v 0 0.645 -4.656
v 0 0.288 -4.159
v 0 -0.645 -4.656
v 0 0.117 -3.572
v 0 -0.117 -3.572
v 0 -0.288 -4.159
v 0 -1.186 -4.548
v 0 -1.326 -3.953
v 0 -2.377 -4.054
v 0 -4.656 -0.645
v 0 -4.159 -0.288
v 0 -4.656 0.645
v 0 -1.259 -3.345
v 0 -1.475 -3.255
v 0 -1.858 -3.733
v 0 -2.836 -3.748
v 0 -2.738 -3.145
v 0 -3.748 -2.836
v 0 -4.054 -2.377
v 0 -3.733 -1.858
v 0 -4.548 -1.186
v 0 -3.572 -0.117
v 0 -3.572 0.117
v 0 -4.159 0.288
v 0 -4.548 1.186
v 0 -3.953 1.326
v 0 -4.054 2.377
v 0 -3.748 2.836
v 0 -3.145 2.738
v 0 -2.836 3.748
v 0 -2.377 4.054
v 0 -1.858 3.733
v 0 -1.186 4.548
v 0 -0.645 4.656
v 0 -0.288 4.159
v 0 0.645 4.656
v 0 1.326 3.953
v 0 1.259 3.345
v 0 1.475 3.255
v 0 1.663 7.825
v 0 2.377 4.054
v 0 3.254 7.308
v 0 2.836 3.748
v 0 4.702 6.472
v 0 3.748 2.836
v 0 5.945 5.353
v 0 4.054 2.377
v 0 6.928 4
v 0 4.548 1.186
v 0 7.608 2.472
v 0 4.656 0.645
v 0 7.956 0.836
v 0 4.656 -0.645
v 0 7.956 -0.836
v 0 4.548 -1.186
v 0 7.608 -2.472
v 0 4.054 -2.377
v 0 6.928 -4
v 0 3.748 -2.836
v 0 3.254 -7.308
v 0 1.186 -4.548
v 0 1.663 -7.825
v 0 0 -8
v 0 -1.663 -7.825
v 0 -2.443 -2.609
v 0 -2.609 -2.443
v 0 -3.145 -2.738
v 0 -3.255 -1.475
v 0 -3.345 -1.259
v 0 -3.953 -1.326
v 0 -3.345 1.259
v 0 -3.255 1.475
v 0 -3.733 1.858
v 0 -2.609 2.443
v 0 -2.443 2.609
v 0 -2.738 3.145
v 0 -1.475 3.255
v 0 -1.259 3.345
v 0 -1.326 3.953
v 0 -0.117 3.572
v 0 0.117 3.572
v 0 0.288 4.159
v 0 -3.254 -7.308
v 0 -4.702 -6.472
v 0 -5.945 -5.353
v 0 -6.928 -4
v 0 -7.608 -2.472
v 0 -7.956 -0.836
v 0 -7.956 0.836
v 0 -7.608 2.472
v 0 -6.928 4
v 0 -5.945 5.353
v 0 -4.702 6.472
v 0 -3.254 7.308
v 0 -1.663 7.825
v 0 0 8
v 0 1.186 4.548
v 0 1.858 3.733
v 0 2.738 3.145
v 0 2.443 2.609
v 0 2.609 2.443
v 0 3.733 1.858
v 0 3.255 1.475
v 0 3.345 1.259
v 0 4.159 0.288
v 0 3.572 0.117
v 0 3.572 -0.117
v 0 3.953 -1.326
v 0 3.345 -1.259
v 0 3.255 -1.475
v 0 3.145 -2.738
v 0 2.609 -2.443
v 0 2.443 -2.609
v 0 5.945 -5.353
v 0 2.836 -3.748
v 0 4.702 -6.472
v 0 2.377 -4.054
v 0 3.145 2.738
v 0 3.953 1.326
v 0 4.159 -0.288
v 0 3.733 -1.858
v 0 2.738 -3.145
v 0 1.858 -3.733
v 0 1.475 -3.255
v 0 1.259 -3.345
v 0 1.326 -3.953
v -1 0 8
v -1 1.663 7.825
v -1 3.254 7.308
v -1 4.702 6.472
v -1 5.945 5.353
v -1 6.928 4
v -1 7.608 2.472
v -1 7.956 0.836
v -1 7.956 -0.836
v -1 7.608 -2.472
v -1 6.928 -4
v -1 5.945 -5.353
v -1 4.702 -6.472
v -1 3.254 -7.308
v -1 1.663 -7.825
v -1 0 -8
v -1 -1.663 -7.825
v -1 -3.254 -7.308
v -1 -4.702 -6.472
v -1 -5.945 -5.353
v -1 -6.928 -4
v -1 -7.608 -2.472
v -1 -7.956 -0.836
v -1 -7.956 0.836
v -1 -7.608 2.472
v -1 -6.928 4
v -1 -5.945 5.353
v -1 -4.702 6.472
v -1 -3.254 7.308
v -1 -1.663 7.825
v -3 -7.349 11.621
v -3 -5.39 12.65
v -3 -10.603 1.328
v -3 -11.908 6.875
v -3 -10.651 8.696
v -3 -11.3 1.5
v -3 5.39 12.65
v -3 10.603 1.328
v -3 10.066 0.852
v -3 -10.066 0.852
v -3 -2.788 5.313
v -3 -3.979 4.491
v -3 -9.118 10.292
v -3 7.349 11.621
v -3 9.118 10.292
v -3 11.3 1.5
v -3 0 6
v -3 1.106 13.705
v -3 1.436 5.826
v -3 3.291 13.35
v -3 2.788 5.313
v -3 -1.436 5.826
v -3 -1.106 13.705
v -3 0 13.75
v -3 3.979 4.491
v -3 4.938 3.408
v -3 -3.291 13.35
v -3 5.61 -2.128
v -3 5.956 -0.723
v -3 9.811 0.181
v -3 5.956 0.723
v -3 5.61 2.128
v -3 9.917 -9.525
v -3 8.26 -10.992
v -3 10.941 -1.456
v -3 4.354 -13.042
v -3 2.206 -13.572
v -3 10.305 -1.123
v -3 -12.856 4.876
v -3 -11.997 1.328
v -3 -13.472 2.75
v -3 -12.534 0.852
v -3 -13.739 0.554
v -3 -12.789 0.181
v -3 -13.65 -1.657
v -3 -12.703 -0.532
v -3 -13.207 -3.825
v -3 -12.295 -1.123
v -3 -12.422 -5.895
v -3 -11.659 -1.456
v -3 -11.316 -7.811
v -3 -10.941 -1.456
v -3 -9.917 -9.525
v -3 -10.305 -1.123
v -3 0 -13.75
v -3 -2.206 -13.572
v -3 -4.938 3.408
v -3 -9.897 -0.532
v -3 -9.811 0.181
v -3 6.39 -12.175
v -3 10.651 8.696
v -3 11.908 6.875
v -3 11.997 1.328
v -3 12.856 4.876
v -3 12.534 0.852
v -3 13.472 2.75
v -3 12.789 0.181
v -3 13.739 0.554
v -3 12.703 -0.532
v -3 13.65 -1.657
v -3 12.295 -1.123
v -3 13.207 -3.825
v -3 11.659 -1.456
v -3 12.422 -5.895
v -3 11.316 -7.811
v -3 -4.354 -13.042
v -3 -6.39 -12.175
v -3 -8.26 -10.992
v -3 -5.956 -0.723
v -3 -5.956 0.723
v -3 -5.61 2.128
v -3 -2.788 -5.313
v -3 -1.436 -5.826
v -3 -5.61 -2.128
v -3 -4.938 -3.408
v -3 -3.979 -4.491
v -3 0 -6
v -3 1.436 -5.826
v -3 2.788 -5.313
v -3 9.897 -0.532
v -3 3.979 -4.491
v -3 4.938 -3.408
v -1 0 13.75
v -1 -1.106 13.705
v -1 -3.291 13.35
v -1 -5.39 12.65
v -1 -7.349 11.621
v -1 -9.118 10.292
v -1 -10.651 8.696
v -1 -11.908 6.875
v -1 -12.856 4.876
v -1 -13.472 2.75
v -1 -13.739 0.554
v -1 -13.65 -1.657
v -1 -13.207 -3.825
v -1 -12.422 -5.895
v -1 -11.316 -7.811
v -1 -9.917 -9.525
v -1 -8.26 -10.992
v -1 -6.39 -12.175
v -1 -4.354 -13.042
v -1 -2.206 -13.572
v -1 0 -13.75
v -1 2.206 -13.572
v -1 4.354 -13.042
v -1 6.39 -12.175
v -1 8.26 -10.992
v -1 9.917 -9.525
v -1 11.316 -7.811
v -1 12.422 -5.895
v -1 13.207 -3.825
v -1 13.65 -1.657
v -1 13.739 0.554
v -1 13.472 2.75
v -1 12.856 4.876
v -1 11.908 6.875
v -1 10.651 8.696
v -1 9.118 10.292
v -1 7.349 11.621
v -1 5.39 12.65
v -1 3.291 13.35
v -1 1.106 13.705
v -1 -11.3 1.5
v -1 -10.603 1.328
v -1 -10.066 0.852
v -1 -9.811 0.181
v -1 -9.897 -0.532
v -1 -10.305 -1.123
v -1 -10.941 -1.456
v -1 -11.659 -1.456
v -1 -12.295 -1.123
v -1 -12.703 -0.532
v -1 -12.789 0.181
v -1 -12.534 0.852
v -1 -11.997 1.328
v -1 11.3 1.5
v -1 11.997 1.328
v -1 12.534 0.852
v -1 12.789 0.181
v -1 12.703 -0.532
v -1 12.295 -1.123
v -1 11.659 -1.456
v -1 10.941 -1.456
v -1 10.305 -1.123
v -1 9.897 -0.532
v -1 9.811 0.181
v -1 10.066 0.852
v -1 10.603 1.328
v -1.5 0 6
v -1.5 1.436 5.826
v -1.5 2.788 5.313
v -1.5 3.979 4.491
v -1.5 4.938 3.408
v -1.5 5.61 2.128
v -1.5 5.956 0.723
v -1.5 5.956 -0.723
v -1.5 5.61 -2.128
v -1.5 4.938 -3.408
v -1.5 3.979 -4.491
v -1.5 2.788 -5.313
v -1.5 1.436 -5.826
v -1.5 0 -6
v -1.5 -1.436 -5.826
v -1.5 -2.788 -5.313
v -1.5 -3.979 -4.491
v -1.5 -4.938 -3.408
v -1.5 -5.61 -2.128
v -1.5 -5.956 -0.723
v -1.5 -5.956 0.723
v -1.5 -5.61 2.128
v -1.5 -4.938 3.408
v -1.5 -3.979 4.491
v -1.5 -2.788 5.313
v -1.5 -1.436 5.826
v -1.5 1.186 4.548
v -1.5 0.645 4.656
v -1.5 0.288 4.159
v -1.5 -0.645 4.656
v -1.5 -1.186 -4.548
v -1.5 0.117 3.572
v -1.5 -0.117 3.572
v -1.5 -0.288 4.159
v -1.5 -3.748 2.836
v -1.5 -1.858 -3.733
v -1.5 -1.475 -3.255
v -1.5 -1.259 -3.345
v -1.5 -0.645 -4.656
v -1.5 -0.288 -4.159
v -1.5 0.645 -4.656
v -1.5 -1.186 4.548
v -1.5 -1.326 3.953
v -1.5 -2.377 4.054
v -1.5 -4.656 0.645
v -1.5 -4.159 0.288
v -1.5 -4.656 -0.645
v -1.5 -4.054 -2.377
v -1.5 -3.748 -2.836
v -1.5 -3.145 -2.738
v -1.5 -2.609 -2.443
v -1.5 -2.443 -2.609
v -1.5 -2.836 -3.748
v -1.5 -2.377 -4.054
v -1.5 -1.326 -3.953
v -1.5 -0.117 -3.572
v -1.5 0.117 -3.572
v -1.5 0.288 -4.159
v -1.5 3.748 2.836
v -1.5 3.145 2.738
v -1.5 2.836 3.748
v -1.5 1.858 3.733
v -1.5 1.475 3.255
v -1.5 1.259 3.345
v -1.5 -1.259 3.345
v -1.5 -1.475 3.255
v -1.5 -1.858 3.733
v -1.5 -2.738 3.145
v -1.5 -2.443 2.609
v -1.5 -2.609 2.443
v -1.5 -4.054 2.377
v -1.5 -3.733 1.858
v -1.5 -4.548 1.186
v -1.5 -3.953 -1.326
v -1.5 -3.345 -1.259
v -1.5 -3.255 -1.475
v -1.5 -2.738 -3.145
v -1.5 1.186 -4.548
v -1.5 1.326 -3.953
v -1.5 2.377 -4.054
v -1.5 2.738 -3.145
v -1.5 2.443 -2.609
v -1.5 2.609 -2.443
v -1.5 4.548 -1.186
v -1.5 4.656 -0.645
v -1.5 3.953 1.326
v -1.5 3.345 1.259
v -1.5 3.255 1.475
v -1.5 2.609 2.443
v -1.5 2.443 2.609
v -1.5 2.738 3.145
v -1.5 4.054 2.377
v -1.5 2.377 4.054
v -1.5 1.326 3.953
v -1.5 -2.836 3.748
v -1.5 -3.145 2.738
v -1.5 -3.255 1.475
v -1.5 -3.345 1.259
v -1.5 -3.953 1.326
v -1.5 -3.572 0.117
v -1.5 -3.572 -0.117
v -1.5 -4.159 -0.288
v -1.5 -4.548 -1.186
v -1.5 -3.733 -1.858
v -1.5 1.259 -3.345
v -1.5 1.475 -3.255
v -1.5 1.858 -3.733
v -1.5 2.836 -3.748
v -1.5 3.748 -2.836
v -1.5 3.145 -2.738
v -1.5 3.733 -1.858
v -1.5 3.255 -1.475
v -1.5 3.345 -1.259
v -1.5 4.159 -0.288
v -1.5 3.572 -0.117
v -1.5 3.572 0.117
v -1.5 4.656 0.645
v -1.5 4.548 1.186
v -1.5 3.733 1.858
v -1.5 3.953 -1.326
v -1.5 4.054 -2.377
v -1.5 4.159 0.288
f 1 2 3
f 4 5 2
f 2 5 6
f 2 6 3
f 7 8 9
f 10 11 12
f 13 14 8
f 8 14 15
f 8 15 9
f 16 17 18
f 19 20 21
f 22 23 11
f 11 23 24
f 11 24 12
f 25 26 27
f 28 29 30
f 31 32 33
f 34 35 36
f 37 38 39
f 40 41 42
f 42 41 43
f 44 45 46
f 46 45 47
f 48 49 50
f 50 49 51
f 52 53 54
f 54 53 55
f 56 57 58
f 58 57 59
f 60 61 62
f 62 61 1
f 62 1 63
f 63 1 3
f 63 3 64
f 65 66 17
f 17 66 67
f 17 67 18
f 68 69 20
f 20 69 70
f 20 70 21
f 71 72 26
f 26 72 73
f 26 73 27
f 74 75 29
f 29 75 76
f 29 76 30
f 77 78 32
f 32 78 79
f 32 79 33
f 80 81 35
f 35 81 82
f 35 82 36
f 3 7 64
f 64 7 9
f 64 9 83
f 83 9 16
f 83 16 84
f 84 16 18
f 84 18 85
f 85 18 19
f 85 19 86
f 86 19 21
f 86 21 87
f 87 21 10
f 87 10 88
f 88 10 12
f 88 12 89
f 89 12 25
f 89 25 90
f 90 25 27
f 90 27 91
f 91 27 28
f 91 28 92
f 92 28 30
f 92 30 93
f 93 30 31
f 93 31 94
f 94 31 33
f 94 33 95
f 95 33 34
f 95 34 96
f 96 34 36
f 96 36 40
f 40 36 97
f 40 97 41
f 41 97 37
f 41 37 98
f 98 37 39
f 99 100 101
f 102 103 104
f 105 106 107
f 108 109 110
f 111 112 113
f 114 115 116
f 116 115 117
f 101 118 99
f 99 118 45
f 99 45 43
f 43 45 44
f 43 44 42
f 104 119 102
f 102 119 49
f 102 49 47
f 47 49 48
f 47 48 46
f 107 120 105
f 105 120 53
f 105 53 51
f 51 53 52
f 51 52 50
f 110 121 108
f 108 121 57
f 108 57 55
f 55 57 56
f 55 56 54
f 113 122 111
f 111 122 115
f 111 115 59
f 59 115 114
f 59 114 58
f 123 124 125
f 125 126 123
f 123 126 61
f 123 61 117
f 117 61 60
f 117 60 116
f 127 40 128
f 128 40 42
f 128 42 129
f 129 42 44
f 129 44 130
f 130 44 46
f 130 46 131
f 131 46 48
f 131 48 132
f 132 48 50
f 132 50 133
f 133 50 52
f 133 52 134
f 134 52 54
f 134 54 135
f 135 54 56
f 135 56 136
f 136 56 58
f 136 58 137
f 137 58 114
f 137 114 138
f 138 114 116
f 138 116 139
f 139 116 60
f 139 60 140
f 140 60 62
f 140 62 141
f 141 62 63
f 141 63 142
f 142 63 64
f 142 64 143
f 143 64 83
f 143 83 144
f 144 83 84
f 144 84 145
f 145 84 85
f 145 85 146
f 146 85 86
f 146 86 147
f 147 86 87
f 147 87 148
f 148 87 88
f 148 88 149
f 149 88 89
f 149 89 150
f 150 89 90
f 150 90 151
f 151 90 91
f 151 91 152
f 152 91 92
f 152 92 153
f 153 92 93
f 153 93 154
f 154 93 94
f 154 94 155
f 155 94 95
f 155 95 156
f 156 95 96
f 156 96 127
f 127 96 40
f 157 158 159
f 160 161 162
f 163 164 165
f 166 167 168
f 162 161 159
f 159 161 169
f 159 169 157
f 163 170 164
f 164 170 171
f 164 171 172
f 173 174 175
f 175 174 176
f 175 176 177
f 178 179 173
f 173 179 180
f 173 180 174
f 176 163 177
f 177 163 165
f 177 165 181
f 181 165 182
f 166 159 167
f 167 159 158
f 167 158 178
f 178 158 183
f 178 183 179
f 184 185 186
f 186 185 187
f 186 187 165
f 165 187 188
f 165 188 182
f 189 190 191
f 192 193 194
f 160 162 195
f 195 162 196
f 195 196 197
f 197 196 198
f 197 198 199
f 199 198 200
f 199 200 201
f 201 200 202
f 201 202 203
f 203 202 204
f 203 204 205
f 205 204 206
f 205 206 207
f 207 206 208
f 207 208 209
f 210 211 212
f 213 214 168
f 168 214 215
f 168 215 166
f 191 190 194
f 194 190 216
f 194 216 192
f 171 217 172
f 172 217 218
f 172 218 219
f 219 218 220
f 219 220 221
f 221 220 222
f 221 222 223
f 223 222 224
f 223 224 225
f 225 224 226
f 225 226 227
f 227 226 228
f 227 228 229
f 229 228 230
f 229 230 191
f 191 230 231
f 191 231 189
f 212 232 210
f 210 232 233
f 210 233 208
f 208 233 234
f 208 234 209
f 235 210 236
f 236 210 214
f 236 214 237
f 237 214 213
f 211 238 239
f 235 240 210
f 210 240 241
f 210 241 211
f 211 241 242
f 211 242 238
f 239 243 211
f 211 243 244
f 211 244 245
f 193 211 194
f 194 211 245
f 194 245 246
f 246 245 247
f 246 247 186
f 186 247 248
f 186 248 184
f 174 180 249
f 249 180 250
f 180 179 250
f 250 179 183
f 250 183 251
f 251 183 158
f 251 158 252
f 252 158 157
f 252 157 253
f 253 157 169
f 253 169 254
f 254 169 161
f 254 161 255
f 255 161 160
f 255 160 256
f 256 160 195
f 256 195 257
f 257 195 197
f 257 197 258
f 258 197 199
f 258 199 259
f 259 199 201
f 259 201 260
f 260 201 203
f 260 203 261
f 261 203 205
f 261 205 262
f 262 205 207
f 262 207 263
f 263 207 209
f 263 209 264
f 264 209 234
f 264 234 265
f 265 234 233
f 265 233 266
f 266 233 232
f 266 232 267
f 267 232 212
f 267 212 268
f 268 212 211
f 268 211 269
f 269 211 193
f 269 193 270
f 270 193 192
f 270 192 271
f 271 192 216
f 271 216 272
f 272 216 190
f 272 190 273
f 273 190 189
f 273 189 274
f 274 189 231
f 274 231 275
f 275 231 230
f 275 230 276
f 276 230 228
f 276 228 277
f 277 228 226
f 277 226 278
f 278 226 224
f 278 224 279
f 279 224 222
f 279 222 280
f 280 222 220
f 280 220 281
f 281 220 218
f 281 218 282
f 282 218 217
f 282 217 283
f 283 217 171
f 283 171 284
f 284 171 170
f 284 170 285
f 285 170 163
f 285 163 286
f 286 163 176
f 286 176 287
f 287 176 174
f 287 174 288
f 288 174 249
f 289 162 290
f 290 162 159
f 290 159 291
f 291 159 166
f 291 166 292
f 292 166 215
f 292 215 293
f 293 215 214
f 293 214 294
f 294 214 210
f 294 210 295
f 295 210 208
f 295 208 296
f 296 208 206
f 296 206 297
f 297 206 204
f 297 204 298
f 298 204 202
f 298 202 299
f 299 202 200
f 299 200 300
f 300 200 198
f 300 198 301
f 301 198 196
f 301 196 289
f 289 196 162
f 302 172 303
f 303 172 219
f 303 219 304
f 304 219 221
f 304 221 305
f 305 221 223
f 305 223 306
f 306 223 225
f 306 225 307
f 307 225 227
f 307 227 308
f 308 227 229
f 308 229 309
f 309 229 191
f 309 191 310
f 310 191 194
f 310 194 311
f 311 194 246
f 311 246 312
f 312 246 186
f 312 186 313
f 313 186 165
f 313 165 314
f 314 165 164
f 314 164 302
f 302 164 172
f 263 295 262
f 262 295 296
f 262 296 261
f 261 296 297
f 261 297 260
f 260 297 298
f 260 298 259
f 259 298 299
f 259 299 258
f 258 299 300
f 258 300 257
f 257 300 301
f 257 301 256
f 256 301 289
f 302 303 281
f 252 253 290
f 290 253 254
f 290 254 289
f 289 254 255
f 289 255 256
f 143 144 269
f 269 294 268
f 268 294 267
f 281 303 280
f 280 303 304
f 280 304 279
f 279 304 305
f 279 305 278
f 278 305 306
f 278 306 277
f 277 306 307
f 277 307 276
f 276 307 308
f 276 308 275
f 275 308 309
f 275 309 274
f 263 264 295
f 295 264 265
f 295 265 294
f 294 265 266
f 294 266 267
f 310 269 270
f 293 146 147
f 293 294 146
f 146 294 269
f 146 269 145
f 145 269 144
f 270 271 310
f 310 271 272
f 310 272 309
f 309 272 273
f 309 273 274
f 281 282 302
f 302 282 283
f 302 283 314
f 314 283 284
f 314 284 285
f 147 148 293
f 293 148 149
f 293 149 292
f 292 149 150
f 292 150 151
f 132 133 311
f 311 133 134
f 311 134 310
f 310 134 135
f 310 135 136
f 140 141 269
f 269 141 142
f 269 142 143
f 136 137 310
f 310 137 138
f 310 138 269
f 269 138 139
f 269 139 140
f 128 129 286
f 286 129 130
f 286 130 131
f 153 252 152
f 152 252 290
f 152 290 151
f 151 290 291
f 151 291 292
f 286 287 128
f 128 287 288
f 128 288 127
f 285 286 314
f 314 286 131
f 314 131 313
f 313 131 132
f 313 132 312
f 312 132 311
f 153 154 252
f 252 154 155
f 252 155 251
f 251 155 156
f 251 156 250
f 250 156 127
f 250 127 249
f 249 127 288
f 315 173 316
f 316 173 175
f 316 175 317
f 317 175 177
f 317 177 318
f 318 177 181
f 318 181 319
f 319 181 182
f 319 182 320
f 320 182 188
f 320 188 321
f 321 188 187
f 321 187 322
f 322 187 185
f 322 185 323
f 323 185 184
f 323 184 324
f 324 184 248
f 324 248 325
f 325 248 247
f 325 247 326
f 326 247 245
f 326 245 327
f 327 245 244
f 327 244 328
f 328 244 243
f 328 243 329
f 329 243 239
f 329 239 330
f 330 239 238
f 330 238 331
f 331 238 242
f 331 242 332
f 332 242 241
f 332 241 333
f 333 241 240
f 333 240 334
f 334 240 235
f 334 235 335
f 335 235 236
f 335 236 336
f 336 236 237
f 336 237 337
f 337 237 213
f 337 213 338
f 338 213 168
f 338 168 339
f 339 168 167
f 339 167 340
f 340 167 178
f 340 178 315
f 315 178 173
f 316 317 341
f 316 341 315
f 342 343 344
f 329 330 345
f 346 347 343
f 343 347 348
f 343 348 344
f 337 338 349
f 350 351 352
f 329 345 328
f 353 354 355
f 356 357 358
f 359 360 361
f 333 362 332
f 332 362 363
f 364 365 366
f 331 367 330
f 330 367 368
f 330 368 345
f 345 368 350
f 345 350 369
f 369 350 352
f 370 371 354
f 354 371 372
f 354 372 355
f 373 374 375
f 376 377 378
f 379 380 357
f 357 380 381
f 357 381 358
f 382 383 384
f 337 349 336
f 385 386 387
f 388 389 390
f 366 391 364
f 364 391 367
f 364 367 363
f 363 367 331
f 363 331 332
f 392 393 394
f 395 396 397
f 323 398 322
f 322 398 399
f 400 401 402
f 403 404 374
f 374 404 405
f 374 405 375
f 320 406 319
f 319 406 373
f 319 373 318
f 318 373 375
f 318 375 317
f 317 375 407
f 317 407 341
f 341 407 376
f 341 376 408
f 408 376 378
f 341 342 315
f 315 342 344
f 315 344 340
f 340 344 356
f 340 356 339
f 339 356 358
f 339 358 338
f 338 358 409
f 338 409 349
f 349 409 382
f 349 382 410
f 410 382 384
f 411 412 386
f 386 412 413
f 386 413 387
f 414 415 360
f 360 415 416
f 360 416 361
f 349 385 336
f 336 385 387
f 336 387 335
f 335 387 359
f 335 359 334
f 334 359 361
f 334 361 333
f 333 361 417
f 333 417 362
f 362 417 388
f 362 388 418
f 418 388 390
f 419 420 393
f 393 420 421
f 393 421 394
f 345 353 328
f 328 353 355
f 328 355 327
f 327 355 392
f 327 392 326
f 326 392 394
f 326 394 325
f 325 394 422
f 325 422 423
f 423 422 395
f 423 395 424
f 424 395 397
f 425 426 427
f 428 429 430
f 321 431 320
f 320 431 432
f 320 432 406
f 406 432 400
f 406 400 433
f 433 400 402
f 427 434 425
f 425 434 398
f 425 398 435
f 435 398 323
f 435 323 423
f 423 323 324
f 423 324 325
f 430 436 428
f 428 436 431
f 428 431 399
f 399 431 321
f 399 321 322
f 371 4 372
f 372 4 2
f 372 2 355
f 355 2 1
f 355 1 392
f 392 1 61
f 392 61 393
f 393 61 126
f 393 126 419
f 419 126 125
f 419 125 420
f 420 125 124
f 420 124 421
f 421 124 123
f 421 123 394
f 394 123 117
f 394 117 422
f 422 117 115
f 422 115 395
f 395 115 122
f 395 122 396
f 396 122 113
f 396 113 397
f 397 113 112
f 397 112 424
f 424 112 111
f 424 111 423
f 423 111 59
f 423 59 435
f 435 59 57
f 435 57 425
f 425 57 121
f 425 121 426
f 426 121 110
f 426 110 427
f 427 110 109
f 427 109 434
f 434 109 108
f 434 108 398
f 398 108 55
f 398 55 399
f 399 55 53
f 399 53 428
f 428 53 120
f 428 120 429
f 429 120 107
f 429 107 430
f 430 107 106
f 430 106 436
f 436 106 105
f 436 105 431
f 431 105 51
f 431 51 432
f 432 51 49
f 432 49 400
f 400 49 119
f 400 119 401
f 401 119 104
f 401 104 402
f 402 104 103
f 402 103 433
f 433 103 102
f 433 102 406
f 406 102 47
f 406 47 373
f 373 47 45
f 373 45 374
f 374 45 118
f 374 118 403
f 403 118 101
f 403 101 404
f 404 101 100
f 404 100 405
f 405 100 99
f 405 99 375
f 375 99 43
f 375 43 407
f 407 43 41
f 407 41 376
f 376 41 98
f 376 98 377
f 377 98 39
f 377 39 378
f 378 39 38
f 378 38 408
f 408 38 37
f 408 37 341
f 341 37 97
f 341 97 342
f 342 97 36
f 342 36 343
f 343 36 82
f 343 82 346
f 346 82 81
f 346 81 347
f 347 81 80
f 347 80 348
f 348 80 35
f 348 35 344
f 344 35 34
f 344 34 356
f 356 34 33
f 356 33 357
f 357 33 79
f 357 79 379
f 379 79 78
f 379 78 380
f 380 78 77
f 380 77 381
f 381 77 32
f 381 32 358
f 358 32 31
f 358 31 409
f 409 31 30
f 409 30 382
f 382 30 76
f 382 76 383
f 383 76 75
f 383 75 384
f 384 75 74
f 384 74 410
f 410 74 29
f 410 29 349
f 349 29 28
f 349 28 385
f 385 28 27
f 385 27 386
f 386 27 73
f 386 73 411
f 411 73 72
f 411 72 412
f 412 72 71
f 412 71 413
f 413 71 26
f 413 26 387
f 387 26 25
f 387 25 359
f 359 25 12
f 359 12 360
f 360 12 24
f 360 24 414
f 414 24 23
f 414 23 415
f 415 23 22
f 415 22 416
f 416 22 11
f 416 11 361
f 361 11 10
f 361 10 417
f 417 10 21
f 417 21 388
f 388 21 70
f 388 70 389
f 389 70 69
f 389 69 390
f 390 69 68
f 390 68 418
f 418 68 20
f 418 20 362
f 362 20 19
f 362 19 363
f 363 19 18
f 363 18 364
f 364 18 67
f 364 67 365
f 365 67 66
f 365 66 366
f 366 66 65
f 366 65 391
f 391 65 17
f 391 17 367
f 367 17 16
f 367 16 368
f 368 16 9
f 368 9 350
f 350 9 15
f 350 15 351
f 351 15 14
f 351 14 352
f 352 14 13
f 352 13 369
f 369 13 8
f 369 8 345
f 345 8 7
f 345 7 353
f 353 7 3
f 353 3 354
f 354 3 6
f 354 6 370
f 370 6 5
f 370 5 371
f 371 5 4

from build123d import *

# Parameters (mm, degrees)
BASPROSKE_W             = 7.5
BASPROSKE_H             = 4.5
TOOTHCUT_DEPTH          = 10.836157786
TEETHCUTS_COUNT         = 16
TEETHCUTS_ANGLE         = 337.5
BORSKE_R                = 2.5
BORE_DEPTH              = 50.0000508
ESQUISSE4_R             = 6
BOSS_EXTRU_3_DEPTH      = 1
ESQUISSE5_R             = 6.027848577
ESQUISSE5_R_2           = 2.85
BOSS_EXTRU_4_DEPTH      = 1
ESQUISSE7_R             = 3.00711341
BOSS_EXTRU_6_DEPTH      = 8.5
ESQUISSE9_R             = 13.75
ESQUISSE9_R_2           = 5.5
BOSS_EXTRU_8_DEPTH      = 2
ESQUISSE10_R            = 1.5
ENL_V_MAT_EXTRU_3_DEPTH = 23.591480695
ESQUISSE11_R            = 3
ENL_V_MAT_EXTRU_4_DEPTH = 4
BOSS_EXTRU_9_START      = 4
ESQUISSE12_R            = 3
BOSS_EXTRU_9_DEPTH      = 4
ESQUISSE13_R            = 5.5
BOSS_EXTRU_10_DEPTH     = 2
ESQUISSE16_R            = 8
BOSS_EXTRU_11_DEPTH     = 1
ESQUISSE14_R            = 6
ENL_V_MAT_EXTRU_5_DEPTH = 1.5
ESQUISSE15_R            = 3.25
ENL_V_MAT_EXTRU_6_DEPTH = 4.5
ENL_V_START             = -4
ESQUISSE17_R            = 6.027848577
ENL_V_MAT_EXTRU_7_DEPTH = 4
ENL_V_MAT_EXTRU_8_DEPTH = 6


with BuildPart() as part:
    # BasProSke → Base-Revolve (revolve)
    with BuildSketch(Plane(origin=(0, 0, 0), x_dir=(1, 0, 0), z_dir=(0, 1, 0)), mode=Mode.PRIVATE) as base_revolve_sk:
        with Locations((3.75, 2.25)):
            Rectangle(BASPROSKE_W, BASPROSKE_H)
    revolve(base_revolve_sk.sketch.rotate(Axis((-10, 0, 0), (1, 0, 0)), 180), axis=Axis((-10, 0, 0), (1, 0, 0)))

    # TooCutSke → ToothCut (cut, through all)
    with BuildSketch(Plane(origin=(0, 0, 0), x_dir=(0, 0, -1), z_dir=(1, 0, 0))):
        with BuildLine():
            ThreePointArc((0.306025637, 3.360092902), (0, 3.374), (-0.306025637, 3.360092902))
            ThreePointArc((-0.306025637, 3.360092902), (-0.415941512, 3.953968919), (-0.738171669, 4.464789776))
            ThreePointArc((-0.738171669, 4.464789776), (0, 4.5254), (0.738171669, 4.464789776))
            ThreePointArc((0.738171669, 4.464789776), (0.415941512, 3.953968919), (0.306025637, 3.360092902))
        make_face()
    toothcut = extrude(amount=TOOTHCUT_DEPTH, mode=Mode.SUBTRACT)

    # TeethCuts: ToothCut ×16 about axis
    teethcuts_axis = Axis((-10, 0, 0), (1, 0, 0))
    for i in range(1, TEETHCUTS_COUNT):
        add(toothcut.rotate(teethcuts_axis, i * TEETHCUTS_ANGLE / (TEETHCUTS_COUNT - 1)), mode=Mode.SUBTRACT)

    # BorSke → Bore (cut, symmetric)
    with BuildSketch(Plane(origin=(0, 0, 0), x_dir=(0, 0, -1), z_dir=(1, 0, 0))):
        with Locations(Location((0, 0, 0), (0, 0, 180))):
            Circle(BORSKE_R)
    extrude(amount=BORE_DEPTH, both=True, mode=Mode.SUBTRACT)

    # Esquisse4 → Boss.-Extru.3 (add)
    with BuildSketch(Plane.ZY):
        Circle(ESQUISSE4_R)
    extrude(amount=BOSS_EXTRU_3_DEPTH)

    # Esquisse5 → Boss.-Extru.4 (add)
    with BuildSketch(Plane(origin=(7.5, 0, 0), x_dir=(0, 0, -1), z_dir=(1, 0, 0))):
        Circle(ESQUISSE5_R)
        Circle(ESQUISSE5_R_2, mode=Mode.SUBTRACT)
    extrude(amount=BOSS_EXTRU_4_DEPTH)

    # Esquisse7 → Boss.-Extru.6 (add)
    with BuildSketch(Plane(origin=(0, 0, 0), x_dir=(0, 0, -1), z_dir=(1, 0, 0))):
        Circle(ESQUISSE7_R)
    extrude(amount=BOSS_EXTRU_6_DEPTH)

    # Esquisse9 → Boss.-Extru.8 (add)
    with BuildSketch(Plane.ZY.offset(1)):
        Circle(ESQUISSE9_R)
        Circle(ESQUISSE9_R_2, mode=Mode.SUBTRACT)
    extrude(amount=BOSS_EXTRU_8_DEPTH)

    # Esquisse10 → Enlèv. mat.-Extru.3 (cut, through all)
    with BuildSketch(Plane.ZY.offset(3)):
        with Locations((0, 11.3)):
            Circle(ESQUISSE10_R)
        with Locations((0, -11.3)):
            Circle(ESQUISSE10_R)
    extrude(amount=-ENL_V_MAT_EXTRU_3_DEPTH, mode=Mode.SUBTRACT)

    # Esquisse11 → Enlèv. mat.-Extru.4 (cut)
    with BuildSketch(Plane.ZY.offset(1)):
        Circle(ESQUISSE11_R)
    extrude(amount=-ENL_V_MAT_EXTRU_4_DEPTH, mode=Mode.SUBTRACT)

    # Esquisse12 → Boss.-Extru.9 (add)
    with BuildSketch(Plane.ZY.offset(-3).offset(BOSS_EXTRU_9_START)):
        Circle(ESQUISSE12_R)
    extrude(amount=-BOSS_EXTRU_9_DEPTH)

    # Esquisse13 → Boss.-Extru.10 (add)
    with BuildSketch(Plane.ZY.offset(1)):
        Circle(ESQUISSE13_R)
    extrude(amount=BOSS_EXTRU_10_DEPTH)

    # Esquisse16 → Boss.-Extru.11 (add)
    with BuildSketch(Plane(origin=(-1, 0, 0), x_dir=(0, 0, -1), z_dir=(1, 0, 0))):
        with Locations(Location((0, 0, 0), (0, 0, 180))):
            Circle(ESQUISSE16_R)
    extrude(amount=BOSS_EXTRU_11_DEPTH)

    # Esquisse14 → Enlèv. mat.-Extru.5 (cut)
    with BuildSketch(Plane.ZY.offset(3)):
        Circle(ESQUISSE14_R)
    extrude(amount=-ENL_V_MAT_EXTRU_5_DEPTH, mode=Mode.SUBTRACT)

    # Esquisse15 → Enlèv. mat.-Extru.6 (cut)
    with BuildSketch(Plane.ZY.offset(1.5)):
        Circle(ESQUISSE15_R)
    extrude(amount=-ENL_V_MAT_EXTRU_6_DEPTH, mode=Mode.SUBTRACT)

    # Esquisse17 → Enlèv. mat.-Extru.7 (cut)
    with BuildSketch(Plane(origin=(8.5, 0, 0), x_dir=(0, 0, -1), z_dir=(1, 0, 0)).offset(ENL_V_START)):
        Circle(ESQUISSE17_R)
    extrude(amount=ENL_V_MAT_EXTRU_7_DEPTH, mode=Mode.SUBTRACT)

    # Esquisse18 → Enlèv. mat.-Extru.8 (cut)
    with BuildSketch(Plane(origin=(4.5, 0, 0), x_dir=(0, 0, -1), z_dir=(1, 0, 0))):
        with BuildLine():
            ThreePointArc((3.572076358, 0.117245432), (4.159283684, 0.287738258), (4.655535919, 0.644969227))
            ThreePointArc((4.655535919, 0.644969227), (4.609690818, 0.916924513), (4.547973386, 1.185722597))
            ThreePointArc((4.547973386, 1.185722597), (3.952789729, 1.325853469), (3.34503612, 1.258653786))
            ThreePointArc((3.34503612, 1.258653786), (3.301945449, 1.367710587), (3.255300351, 1.475295097))
            ThreePointArc((3.255300351, 1.475295097), (3.732564401, 1.857524443), (4.054335311, 2.377470333))
            ThreePointArc((4.054335311, 2.377470333), (3.907907178, 2.611180095), (3.748023133, 2.835898905))
            ThreePointArc((3.748023133, 2.835898905), (3.144519371, 2.737596024), (2.608744456, 2.442934375))
            ThreePointArc((2.608744456, 2.442934375), (2.527199636, 2.527199636), (2.442934375, 2.608744456))
            ThreePointArc((2.442934375, 2.608744456), (2.737596024, 3.144519371), (2.835898905, 3.748023133))
            ThreePointArc((2.835898905, 3.748023133), (2.611180095, 3.907907178), (2.377470333, 4.054335311))
            ThreePointArc((2.377470333, 4.054335311), (1.857524443, 3.732564401), (1.475295097, 3.255300351))
            ThreePointArc((1.475295097, 3.255300351), (1.367710587, 3.301945449), (1.258653786, 3.34503612))
            ThreePointArc((1.258653786, 3.34503612), (1.325853469, 3.952789729), (1.185722597, 4.547973386))
            ThreePointArc((1.185722597, 4.547973386), (0.916924513, 4.609690818), (0.644969227, 4.655535919))
            ThreePointArc((0.644969227, 4.655535919), (0.287738258, 4.159283684), (0.117245432, 3.572076358))
            ThreePointArc((0.117245432, 3.572076358), (0, 3.574), (-0.117245432, 3.572076358))
            ThreePointArc((-0.117245432, 3.572076358), (-0.287738258, 4.159283684), (-0.644969227, 4.655535919))
            ThreePointArc((-0.644969227, 4.655535919), (-0.916924513, 4.609690818), (-1.185722597, 4.547973386))
            ThreePointArc((-1.185722597, 4.547973386), (-1.325853469, 3.952789729), (-1.258653786, 3.34503612))
            ThreePointArc((-1.258653786, 3.34503612), (-1.367710587, 3.301945449), (-1.475295097, 3.255300351))
            ThreePointArc((-1.475295097, 3.255300351), (-1.857524443, 3.732564401), (-2.377470333, 4.054335311))
            ThreePointArc((-2.377470333, 4.054335311), (-2.611180095, 3.907907178), (-2.835898905, 3.748023133))
            ThreePointArc((-2.835898905, 3.748023133), (-2.737596024, 3.144519371), (-2.442934375, 2.608744456))
            ThreePointArc((-2.442934375, 2.608744456), (-2.527199636, 2.527199636), (-2.608744456, 2.442934375))
            ThreePointArc((-2.608744456, 2.442934375), (-3.144519371, 2.737596024), (-3.748023133, 2.835898905))
            ThreePointArc((-3.748023133, 2.835898905), (-3.907907178, 2.611180095), (-4.054335311, 2.377470333))
            ThreePointArc((-4.054335311, 2.377470333), (-3.732564401, 1.857524443), (-3.255300351, 1.475295097))
            ThreePointArc((-3.255300351, 1.475295097), (-3.301945449, 1.367710587), (-3.34503612, 1.258653786))
            ThreePointArc((-3.34503612, 1.258653786), (-3.952789729, 1.325853469), (-4.547973386, 1.185722597))
            ThreePointArc((-4.547973386, 1.185722597), (-4.609690818, 0.916924513), (-4.655535919, 0.644969227))
            ThreePointArc((-4.655535919, 0.644969227), (-4.159283684, 0.287738258), (-3.572076358, 0.117245432))
            ThreePointArc((-3.572076358, 0.117245432), (-3.574, 0), (-3.572076358, -0.117245432))
            ThreePointArc((-3.572076358, -0.117245432), (-4.159283684, -0.287738258), (-4.655535919, -0.644969227))
            ThreePointArc((-4.655535919, -0.644969227), (-4.609690818, -0.916924513), (-4.547973386, -1.185722597))
            ThreePointArc((-4.547973386, -1.185722597), (-3.952789729, -1.325853469), (-3.34503612, -1.258653786))
            ThreePointArc((-3.34503612, -1.258653786), (-3.301945449, -1.367710587), (-3.255300351, -1.475295097))
            ThreePointArc((-3.255300351, -1.475295097), (-3.732564401, -1.857524443), (-4.054335311, -2.377470333))
            ThreePointArc((-4.054335311, -2.377470333), (-3.907907178, -2.611180095), (-3.748023133, -2.835898905))
            ThreePointArc((-3.748023133, -2.835898905), (-3.144519371, -2.737596024), (-2.608744456, -2.442934375))
            ThreePointArc((-2.608744456, -2.442934375), (-2.527199636, -2.527199636), (-2.442934375, -2.608744456))
            ThreePointArc((-2.442934375, -2.608744456), (-2.737596024, -3.144519371), (-2.835898905, -3.748023133))
            ThreePointArc((-2.835898905, -3.748023133), (-2.611180095, -3.907907178), (-2.377470333, -4.054335311))
            ThreePointArc((-2.377470333, -4.054335311), (-1.857524443, -3.732564401), (-1.475295097, -3.255300351))
            ThreePointArc((-1.475295097, -3.255300351), (-1.367710587, -3.301945449), (-1.258653786, -3.34503612))
            ThreePointArc((-1.258653786, -3.34503612), (-1.325853469, -3.952789729), (-1.185722597, -4.547973386))
            ThreePointArc((-1.185722597, -4.547973386), (-0.916924513, -4.609690818), (-0.644969227, -4.655535919))
            ThreePointArc((-0.644969227, -4.655535919), (-0.287738258, -4.159283684), (-0.117245432, -3.572076358))
            ThreePointArc((-0.117245432, -3.572076358), (0, -3.574), (0.117245432, -3.572076358))
            ThreePointArc((0.117245432, -3.572076358), (0.287738258, -4.159283684), (0.644969227, -4.655535919))
            ThreePointArc((0.644969227, -4.655535919), (0.916924513, -4.609690818), (1.185722597, -4.547973386))
            ThreePointArc((1.185722597, -4.547973386), (1.325853469, -3.952789729), (1.258653786, -3.34503612))
            ThreePointArc((1.258653786, -3.34503612), (1.367710587, -3.301945449), (1.475295097, -3.255300351))
            ThreePointArc((1.475295097, -3.255300351), (1.857524443, -3.732564401), (2.377470333, -4.054335311))
            ThreePointArc((2.377470333, -4.054335311), (2.611180095, -3.907907178), (2.835898905, -3.748023133))
            ThreePointArc((2.835898905, -3.748023133), (2.737596024, -3.144519371), (2.442934375, -2.608744456))
            ThreePointArc((2.442934375, -2.608744456), (2.527199636, -2.527199636), (2.608744456, -2.442934375))
            ThreePointArc((2.608744456, -2.442934375), (3.144519371, -2.737596024), (3.748023133, -2.835898905))
            ThreePointArc((3.748023133, -2.835898905), (3.907907178, -2.611180095), (4.054335311, -2.377470333))
            ThreePointArc((4.054335311, -2.377470333), (3.732564401, -1.857524443), (3.255300351, -1.475295097))
            ThreePointArc((3.255300351, -1.475295097), (3.301945449, -1.367710587), (3.34503612, -1.258653786))
            ThreePointArc((3.34503612, -1.258653786), (3.952789729, -1.325853469), (4.547973386, -1.185722597))
            ThreePointArc((4.547973386, -1.185722597), (4.609690818, -0.916924513), (4.655535919, -0.644969227))
            ThreePointArc((4.655535919, -0.644969227), (4.159283684, -0.287738258), (3.572076358, -0.117245432))
            ThreePointArc((3.572076358, -0.117245432), (3.574, 0), (3.572076358, 0.117245432))
        make_face()
    extrude(amount=-ENL_V_MAT_EXTRU_8_DEPTH, mode=Mode.SUBTRACT)


solid = part.part
